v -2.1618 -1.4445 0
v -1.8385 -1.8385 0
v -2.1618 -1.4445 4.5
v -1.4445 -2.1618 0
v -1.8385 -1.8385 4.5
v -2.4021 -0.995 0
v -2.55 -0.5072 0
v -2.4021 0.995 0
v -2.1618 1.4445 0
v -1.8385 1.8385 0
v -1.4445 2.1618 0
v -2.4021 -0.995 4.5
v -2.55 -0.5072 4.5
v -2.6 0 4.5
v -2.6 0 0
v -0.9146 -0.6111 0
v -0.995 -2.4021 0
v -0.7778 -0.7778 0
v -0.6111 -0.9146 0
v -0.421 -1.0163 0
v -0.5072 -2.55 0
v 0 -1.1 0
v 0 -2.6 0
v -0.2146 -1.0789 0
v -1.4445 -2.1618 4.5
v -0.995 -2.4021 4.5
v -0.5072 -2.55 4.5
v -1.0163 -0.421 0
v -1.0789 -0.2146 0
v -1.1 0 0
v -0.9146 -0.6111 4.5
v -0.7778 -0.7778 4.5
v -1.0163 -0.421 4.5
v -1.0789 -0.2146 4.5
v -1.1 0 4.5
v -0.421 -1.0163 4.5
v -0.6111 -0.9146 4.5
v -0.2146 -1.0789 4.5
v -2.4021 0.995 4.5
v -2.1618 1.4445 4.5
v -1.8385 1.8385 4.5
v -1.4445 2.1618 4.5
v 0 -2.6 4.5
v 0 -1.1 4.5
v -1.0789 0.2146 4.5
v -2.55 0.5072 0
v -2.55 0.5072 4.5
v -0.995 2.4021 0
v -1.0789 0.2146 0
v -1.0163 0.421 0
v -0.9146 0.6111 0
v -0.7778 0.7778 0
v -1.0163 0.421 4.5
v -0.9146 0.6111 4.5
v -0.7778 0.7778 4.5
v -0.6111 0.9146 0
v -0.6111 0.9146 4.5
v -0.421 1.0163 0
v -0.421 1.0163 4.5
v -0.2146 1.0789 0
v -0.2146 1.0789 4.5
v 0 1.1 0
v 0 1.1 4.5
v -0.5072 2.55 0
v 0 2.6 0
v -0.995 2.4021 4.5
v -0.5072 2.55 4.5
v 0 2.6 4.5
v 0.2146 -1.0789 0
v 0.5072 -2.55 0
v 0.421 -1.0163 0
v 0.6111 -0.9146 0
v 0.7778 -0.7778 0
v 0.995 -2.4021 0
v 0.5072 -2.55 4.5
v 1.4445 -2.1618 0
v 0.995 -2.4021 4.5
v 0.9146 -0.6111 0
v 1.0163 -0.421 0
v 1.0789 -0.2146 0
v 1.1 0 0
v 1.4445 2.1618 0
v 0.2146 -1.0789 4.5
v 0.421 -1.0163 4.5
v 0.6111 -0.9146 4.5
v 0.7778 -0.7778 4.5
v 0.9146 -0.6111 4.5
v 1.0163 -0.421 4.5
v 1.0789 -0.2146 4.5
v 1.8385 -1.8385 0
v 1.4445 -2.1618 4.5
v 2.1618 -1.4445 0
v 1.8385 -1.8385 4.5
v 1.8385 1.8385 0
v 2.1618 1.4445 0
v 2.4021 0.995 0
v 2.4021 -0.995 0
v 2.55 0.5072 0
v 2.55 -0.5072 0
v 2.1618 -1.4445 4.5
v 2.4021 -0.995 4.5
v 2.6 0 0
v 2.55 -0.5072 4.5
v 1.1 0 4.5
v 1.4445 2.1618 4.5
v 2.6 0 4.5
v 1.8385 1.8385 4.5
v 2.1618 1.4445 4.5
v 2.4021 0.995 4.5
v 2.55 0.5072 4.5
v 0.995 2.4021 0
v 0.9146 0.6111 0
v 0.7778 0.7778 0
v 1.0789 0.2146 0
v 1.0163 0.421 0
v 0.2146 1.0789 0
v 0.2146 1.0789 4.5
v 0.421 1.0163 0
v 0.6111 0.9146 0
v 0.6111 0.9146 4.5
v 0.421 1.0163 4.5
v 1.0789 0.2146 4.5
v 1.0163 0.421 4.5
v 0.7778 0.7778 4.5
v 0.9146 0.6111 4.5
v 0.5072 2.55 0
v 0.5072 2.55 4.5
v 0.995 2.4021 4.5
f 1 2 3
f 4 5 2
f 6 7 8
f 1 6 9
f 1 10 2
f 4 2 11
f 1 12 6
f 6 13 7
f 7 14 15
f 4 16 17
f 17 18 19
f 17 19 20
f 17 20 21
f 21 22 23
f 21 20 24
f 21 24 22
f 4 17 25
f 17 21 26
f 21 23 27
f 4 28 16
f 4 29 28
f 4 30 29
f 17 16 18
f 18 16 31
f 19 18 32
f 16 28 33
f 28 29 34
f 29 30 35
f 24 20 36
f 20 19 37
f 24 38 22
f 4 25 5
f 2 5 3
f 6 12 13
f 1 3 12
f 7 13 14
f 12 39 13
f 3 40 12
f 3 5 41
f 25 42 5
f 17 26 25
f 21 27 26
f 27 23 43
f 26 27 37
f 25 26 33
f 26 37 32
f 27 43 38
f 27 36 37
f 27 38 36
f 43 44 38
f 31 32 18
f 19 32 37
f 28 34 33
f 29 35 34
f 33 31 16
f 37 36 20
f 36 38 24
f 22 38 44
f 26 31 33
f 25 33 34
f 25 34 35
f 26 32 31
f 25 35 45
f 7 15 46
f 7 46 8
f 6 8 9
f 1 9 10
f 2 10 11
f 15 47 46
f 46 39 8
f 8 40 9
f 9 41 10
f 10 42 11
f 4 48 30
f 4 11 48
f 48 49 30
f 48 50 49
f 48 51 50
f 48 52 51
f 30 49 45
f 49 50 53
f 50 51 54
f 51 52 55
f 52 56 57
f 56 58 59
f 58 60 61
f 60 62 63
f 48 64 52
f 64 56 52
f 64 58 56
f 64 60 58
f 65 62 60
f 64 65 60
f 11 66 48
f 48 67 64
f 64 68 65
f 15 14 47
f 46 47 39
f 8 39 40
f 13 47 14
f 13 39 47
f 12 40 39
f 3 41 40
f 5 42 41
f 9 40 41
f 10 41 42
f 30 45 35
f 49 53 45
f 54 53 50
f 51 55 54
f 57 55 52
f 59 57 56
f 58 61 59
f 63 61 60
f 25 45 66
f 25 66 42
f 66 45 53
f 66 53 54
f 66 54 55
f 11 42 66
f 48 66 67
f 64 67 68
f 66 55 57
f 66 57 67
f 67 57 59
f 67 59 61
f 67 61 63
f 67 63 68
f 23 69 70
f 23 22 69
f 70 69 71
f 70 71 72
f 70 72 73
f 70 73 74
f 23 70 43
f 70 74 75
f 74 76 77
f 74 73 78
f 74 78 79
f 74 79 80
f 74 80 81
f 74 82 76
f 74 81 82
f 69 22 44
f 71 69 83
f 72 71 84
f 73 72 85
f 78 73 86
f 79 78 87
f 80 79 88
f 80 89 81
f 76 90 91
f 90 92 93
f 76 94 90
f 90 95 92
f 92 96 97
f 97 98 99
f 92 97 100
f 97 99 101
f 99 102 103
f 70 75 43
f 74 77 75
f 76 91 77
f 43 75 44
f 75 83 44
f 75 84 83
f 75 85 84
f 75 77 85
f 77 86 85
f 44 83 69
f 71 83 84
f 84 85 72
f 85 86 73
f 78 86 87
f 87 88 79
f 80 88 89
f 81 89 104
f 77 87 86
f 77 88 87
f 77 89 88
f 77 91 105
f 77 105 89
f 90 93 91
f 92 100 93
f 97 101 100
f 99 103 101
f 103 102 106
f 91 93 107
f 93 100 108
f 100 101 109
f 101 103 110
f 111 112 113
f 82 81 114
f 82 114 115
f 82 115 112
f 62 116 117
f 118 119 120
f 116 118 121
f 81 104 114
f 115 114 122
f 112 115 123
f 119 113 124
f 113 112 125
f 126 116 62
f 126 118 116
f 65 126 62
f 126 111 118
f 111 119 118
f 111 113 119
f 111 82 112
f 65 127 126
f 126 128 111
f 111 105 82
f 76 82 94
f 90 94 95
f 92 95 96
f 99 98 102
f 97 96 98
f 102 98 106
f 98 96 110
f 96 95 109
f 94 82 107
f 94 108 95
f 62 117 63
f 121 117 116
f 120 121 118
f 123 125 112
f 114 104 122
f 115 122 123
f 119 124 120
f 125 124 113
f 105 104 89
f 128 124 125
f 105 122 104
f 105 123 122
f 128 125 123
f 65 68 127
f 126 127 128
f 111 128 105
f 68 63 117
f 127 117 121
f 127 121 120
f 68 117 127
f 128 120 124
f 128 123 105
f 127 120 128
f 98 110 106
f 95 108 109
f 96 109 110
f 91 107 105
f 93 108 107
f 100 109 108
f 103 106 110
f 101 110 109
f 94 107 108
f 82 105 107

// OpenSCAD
// Print two in PETG. Reference support geometry, verify donor mounting points.
spacer_height = 4.5;
spacer_outer_diameter = 5.2;
spacer_inner_diameter = 2.2;
$fn = 32;
difference() {
    cylinder(h = spacer_height, d = spacer_outer_diameter);
    translate([0, 0, -0.02])
        cylinder(h = spacer_height + 0.04, d = spacer_inner_diameter);
}
